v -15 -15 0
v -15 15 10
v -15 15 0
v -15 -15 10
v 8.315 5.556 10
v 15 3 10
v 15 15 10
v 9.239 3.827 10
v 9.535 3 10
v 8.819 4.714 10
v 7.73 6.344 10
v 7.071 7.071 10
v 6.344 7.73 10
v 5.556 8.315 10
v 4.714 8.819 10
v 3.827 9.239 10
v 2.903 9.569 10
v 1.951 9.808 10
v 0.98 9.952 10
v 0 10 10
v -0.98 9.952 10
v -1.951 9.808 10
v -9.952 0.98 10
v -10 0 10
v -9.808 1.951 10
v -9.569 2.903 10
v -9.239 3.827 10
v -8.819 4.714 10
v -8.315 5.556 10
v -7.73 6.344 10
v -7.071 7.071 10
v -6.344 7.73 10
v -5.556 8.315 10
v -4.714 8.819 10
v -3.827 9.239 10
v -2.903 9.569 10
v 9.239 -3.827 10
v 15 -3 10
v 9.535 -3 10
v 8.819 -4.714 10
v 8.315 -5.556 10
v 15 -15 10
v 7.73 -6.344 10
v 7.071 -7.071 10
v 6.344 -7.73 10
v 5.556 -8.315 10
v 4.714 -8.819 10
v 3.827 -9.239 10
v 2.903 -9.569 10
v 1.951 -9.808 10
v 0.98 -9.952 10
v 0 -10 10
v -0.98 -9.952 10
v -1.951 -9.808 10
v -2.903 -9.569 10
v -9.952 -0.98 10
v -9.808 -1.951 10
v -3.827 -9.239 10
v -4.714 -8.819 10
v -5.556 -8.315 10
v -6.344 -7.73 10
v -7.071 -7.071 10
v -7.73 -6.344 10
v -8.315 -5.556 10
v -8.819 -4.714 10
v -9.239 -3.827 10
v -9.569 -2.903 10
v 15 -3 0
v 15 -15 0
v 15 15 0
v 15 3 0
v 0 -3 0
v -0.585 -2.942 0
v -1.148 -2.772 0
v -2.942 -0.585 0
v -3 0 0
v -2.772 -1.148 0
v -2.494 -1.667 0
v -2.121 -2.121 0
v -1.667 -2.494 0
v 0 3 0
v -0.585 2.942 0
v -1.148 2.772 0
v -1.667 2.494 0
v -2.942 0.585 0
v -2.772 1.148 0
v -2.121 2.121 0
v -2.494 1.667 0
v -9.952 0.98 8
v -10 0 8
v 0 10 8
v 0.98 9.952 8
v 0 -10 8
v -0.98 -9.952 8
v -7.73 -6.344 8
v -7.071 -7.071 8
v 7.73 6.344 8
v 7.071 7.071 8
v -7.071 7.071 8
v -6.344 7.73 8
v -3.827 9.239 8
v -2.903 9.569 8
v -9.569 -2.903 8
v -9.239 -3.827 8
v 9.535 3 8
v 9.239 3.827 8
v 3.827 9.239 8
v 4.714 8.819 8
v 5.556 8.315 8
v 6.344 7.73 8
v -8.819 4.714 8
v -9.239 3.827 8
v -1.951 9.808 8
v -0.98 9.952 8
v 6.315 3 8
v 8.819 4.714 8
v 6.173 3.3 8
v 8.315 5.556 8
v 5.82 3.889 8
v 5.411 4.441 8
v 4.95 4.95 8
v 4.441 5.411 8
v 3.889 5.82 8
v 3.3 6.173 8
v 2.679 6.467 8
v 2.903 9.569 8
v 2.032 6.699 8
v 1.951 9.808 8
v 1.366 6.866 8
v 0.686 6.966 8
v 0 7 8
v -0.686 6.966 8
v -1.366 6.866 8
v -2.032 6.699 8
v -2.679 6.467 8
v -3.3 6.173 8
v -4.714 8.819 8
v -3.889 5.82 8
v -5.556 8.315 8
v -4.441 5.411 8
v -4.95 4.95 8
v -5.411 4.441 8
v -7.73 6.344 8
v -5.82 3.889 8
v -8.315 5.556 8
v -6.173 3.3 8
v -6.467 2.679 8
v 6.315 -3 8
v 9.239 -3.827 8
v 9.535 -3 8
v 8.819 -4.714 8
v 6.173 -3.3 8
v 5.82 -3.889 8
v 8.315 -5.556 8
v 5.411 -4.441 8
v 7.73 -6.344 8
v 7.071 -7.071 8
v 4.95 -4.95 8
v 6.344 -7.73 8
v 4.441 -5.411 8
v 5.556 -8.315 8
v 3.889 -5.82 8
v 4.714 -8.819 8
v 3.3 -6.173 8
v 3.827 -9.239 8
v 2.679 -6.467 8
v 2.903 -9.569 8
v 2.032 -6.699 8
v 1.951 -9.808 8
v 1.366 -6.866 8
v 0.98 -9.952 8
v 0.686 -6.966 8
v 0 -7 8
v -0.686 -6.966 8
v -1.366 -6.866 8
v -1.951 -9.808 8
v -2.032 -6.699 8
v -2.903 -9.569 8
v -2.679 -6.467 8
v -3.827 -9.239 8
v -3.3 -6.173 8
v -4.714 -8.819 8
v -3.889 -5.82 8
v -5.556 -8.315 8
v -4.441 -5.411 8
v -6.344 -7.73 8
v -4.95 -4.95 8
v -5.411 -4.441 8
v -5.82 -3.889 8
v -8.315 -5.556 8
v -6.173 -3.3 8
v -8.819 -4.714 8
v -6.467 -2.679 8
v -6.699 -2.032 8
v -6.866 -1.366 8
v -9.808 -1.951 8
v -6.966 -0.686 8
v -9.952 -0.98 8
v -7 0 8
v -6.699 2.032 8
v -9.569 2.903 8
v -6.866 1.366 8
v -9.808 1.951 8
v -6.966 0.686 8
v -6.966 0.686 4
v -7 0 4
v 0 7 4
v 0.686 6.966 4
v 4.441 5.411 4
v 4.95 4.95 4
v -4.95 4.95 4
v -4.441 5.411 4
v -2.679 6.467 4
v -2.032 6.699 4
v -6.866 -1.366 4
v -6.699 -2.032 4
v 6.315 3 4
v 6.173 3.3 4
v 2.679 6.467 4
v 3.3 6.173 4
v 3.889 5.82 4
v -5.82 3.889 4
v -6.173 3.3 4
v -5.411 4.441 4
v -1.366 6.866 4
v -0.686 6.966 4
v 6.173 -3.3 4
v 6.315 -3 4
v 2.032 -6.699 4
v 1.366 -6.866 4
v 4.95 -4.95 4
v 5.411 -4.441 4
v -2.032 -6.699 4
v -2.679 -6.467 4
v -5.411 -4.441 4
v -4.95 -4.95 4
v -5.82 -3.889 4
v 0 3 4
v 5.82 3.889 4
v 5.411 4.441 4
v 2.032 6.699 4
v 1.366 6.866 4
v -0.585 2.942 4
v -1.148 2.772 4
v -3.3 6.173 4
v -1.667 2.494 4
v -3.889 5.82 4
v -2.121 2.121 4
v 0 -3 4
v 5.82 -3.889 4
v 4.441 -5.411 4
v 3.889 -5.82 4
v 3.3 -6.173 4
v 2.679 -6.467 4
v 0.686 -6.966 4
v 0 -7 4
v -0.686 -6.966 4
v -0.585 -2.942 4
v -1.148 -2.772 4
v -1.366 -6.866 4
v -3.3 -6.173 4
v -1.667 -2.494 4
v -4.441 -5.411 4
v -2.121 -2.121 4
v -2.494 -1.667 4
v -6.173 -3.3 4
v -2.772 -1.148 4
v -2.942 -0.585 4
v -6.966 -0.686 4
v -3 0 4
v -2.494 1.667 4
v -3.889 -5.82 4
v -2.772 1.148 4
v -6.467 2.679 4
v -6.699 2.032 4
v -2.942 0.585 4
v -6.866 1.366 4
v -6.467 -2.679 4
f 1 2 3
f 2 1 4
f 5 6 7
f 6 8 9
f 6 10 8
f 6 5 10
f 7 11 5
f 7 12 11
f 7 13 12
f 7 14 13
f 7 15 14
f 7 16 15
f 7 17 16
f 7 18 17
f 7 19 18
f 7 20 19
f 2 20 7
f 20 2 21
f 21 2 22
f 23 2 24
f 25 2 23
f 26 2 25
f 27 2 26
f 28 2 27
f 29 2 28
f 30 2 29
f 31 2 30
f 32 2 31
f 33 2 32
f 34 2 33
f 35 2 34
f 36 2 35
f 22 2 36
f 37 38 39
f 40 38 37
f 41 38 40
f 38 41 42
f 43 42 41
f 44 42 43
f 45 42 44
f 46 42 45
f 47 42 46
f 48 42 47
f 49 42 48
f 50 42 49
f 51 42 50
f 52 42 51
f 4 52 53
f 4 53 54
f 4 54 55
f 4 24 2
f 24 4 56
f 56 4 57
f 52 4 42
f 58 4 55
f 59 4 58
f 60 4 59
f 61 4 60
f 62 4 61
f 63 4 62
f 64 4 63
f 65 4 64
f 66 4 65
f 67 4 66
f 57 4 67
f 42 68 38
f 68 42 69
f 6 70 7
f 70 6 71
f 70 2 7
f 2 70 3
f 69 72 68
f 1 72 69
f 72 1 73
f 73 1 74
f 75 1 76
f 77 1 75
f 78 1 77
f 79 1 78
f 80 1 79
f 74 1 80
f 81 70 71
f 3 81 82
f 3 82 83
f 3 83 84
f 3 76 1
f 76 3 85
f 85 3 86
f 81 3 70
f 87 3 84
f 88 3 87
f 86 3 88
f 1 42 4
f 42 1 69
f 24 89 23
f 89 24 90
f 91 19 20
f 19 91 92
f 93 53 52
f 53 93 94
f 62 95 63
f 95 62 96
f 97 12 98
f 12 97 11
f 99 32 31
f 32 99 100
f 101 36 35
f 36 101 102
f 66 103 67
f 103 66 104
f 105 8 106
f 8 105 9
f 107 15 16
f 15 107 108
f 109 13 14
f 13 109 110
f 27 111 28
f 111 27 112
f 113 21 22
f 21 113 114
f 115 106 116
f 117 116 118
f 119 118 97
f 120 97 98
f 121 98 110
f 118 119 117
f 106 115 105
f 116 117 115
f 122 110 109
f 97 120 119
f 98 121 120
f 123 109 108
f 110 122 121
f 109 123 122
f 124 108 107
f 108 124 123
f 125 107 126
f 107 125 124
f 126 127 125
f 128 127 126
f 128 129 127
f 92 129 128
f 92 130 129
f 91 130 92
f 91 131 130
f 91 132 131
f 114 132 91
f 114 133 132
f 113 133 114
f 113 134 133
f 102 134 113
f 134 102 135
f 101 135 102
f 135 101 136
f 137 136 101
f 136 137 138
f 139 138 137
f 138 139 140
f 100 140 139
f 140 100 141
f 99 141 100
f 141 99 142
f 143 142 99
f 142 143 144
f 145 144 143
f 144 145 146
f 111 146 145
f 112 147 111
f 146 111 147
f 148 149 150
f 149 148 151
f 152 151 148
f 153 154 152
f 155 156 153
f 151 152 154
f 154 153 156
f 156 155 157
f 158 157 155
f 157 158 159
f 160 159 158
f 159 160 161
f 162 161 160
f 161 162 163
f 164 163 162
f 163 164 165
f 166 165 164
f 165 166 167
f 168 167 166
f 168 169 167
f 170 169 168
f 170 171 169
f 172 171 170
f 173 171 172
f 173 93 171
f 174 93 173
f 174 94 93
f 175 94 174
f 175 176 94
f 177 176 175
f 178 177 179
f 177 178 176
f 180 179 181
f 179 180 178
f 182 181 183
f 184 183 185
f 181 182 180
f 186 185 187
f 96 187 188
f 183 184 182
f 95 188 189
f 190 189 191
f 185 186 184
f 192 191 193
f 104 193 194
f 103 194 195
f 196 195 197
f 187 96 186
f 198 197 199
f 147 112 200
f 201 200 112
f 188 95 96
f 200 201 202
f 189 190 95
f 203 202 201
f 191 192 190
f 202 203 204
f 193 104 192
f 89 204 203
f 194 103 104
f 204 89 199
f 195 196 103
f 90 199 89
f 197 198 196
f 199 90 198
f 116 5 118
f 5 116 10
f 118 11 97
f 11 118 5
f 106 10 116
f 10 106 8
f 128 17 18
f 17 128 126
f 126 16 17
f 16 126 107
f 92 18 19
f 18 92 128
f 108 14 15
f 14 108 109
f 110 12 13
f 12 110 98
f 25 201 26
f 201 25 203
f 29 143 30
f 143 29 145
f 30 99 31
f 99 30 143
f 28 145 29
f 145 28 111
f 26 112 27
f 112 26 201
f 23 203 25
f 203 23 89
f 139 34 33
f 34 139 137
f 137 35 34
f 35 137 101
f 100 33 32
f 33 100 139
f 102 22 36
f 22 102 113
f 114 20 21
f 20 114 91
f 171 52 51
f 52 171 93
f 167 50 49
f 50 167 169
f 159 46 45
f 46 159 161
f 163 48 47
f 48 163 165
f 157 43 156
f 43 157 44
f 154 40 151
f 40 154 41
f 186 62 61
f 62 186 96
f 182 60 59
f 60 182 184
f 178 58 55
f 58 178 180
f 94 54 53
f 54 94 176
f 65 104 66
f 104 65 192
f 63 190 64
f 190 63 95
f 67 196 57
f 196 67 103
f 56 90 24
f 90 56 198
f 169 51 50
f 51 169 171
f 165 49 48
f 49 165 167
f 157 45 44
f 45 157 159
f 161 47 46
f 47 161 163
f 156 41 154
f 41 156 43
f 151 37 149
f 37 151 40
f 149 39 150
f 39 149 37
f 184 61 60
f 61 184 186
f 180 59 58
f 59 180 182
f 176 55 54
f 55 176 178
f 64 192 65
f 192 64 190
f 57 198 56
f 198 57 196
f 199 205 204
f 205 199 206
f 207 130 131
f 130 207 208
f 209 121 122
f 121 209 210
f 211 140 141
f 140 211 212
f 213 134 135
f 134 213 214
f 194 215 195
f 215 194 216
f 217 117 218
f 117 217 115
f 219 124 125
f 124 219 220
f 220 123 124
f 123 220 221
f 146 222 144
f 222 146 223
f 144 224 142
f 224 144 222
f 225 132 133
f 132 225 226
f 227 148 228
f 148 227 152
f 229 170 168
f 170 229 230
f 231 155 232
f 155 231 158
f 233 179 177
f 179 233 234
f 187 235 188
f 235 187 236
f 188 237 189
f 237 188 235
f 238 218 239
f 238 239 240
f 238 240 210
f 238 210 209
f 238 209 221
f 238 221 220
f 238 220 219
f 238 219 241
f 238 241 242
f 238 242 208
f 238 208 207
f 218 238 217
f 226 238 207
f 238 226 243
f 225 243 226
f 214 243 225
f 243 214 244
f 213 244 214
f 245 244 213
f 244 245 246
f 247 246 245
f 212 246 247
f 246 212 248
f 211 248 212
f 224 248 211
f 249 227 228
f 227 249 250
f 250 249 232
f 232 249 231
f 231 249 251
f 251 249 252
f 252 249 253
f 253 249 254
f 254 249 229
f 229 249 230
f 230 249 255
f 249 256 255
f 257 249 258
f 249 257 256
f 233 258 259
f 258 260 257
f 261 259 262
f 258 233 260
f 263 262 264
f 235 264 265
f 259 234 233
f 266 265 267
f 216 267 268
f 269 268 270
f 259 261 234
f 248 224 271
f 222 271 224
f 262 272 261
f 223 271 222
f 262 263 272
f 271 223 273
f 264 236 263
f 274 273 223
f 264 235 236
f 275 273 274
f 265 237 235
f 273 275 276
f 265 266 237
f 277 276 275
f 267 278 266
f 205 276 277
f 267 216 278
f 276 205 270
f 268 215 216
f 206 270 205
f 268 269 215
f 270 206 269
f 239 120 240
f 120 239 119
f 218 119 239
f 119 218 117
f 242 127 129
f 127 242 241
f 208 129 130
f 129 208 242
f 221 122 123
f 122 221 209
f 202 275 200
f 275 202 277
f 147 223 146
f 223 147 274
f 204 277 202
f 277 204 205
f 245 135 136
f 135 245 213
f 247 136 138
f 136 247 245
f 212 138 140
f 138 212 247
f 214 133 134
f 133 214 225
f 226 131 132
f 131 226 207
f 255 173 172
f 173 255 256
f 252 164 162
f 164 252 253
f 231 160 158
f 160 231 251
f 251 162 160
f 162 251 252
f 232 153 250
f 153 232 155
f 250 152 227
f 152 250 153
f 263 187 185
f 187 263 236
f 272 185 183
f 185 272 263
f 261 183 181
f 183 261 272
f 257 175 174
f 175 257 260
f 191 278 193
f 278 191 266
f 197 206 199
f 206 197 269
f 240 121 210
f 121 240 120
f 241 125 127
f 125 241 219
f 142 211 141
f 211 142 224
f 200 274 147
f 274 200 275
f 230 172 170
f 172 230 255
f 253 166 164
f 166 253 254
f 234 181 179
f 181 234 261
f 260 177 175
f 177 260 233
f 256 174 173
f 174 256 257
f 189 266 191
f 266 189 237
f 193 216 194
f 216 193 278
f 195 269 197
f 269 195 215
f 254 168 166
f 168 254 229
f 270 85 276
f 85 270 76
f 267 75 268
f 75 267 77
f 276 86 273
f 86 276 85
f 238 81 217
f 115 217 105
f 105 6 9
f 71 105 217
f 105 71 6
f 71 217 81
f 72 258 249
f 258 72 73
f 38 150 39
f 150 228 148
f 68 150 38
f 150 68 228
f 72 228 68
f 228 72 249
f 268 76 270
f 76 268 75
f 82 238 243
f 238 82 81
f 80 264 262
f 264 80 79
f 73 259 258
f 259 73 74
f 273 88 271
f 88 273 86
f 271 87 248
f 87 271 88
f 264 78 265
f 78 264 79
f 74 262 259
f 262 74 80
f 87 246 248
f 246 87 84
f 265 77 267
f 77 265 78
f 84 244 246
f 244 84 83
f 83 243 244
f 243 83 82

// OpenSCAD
$fn=64;
difference() {
  translate([-15,-15,0]) cube([30,30,10]);
  translate([0,0,8]) cylinder(d=20,h=10);
  translate([0,0,4]) cylinder(d=14,h=10);
  hull() {
    $fn=32;
    translate([0,0,-1]) cylinder(d=6,h=12);
    translate([20,0,-1]) cylinder(d=6,h=12);
  }
}
